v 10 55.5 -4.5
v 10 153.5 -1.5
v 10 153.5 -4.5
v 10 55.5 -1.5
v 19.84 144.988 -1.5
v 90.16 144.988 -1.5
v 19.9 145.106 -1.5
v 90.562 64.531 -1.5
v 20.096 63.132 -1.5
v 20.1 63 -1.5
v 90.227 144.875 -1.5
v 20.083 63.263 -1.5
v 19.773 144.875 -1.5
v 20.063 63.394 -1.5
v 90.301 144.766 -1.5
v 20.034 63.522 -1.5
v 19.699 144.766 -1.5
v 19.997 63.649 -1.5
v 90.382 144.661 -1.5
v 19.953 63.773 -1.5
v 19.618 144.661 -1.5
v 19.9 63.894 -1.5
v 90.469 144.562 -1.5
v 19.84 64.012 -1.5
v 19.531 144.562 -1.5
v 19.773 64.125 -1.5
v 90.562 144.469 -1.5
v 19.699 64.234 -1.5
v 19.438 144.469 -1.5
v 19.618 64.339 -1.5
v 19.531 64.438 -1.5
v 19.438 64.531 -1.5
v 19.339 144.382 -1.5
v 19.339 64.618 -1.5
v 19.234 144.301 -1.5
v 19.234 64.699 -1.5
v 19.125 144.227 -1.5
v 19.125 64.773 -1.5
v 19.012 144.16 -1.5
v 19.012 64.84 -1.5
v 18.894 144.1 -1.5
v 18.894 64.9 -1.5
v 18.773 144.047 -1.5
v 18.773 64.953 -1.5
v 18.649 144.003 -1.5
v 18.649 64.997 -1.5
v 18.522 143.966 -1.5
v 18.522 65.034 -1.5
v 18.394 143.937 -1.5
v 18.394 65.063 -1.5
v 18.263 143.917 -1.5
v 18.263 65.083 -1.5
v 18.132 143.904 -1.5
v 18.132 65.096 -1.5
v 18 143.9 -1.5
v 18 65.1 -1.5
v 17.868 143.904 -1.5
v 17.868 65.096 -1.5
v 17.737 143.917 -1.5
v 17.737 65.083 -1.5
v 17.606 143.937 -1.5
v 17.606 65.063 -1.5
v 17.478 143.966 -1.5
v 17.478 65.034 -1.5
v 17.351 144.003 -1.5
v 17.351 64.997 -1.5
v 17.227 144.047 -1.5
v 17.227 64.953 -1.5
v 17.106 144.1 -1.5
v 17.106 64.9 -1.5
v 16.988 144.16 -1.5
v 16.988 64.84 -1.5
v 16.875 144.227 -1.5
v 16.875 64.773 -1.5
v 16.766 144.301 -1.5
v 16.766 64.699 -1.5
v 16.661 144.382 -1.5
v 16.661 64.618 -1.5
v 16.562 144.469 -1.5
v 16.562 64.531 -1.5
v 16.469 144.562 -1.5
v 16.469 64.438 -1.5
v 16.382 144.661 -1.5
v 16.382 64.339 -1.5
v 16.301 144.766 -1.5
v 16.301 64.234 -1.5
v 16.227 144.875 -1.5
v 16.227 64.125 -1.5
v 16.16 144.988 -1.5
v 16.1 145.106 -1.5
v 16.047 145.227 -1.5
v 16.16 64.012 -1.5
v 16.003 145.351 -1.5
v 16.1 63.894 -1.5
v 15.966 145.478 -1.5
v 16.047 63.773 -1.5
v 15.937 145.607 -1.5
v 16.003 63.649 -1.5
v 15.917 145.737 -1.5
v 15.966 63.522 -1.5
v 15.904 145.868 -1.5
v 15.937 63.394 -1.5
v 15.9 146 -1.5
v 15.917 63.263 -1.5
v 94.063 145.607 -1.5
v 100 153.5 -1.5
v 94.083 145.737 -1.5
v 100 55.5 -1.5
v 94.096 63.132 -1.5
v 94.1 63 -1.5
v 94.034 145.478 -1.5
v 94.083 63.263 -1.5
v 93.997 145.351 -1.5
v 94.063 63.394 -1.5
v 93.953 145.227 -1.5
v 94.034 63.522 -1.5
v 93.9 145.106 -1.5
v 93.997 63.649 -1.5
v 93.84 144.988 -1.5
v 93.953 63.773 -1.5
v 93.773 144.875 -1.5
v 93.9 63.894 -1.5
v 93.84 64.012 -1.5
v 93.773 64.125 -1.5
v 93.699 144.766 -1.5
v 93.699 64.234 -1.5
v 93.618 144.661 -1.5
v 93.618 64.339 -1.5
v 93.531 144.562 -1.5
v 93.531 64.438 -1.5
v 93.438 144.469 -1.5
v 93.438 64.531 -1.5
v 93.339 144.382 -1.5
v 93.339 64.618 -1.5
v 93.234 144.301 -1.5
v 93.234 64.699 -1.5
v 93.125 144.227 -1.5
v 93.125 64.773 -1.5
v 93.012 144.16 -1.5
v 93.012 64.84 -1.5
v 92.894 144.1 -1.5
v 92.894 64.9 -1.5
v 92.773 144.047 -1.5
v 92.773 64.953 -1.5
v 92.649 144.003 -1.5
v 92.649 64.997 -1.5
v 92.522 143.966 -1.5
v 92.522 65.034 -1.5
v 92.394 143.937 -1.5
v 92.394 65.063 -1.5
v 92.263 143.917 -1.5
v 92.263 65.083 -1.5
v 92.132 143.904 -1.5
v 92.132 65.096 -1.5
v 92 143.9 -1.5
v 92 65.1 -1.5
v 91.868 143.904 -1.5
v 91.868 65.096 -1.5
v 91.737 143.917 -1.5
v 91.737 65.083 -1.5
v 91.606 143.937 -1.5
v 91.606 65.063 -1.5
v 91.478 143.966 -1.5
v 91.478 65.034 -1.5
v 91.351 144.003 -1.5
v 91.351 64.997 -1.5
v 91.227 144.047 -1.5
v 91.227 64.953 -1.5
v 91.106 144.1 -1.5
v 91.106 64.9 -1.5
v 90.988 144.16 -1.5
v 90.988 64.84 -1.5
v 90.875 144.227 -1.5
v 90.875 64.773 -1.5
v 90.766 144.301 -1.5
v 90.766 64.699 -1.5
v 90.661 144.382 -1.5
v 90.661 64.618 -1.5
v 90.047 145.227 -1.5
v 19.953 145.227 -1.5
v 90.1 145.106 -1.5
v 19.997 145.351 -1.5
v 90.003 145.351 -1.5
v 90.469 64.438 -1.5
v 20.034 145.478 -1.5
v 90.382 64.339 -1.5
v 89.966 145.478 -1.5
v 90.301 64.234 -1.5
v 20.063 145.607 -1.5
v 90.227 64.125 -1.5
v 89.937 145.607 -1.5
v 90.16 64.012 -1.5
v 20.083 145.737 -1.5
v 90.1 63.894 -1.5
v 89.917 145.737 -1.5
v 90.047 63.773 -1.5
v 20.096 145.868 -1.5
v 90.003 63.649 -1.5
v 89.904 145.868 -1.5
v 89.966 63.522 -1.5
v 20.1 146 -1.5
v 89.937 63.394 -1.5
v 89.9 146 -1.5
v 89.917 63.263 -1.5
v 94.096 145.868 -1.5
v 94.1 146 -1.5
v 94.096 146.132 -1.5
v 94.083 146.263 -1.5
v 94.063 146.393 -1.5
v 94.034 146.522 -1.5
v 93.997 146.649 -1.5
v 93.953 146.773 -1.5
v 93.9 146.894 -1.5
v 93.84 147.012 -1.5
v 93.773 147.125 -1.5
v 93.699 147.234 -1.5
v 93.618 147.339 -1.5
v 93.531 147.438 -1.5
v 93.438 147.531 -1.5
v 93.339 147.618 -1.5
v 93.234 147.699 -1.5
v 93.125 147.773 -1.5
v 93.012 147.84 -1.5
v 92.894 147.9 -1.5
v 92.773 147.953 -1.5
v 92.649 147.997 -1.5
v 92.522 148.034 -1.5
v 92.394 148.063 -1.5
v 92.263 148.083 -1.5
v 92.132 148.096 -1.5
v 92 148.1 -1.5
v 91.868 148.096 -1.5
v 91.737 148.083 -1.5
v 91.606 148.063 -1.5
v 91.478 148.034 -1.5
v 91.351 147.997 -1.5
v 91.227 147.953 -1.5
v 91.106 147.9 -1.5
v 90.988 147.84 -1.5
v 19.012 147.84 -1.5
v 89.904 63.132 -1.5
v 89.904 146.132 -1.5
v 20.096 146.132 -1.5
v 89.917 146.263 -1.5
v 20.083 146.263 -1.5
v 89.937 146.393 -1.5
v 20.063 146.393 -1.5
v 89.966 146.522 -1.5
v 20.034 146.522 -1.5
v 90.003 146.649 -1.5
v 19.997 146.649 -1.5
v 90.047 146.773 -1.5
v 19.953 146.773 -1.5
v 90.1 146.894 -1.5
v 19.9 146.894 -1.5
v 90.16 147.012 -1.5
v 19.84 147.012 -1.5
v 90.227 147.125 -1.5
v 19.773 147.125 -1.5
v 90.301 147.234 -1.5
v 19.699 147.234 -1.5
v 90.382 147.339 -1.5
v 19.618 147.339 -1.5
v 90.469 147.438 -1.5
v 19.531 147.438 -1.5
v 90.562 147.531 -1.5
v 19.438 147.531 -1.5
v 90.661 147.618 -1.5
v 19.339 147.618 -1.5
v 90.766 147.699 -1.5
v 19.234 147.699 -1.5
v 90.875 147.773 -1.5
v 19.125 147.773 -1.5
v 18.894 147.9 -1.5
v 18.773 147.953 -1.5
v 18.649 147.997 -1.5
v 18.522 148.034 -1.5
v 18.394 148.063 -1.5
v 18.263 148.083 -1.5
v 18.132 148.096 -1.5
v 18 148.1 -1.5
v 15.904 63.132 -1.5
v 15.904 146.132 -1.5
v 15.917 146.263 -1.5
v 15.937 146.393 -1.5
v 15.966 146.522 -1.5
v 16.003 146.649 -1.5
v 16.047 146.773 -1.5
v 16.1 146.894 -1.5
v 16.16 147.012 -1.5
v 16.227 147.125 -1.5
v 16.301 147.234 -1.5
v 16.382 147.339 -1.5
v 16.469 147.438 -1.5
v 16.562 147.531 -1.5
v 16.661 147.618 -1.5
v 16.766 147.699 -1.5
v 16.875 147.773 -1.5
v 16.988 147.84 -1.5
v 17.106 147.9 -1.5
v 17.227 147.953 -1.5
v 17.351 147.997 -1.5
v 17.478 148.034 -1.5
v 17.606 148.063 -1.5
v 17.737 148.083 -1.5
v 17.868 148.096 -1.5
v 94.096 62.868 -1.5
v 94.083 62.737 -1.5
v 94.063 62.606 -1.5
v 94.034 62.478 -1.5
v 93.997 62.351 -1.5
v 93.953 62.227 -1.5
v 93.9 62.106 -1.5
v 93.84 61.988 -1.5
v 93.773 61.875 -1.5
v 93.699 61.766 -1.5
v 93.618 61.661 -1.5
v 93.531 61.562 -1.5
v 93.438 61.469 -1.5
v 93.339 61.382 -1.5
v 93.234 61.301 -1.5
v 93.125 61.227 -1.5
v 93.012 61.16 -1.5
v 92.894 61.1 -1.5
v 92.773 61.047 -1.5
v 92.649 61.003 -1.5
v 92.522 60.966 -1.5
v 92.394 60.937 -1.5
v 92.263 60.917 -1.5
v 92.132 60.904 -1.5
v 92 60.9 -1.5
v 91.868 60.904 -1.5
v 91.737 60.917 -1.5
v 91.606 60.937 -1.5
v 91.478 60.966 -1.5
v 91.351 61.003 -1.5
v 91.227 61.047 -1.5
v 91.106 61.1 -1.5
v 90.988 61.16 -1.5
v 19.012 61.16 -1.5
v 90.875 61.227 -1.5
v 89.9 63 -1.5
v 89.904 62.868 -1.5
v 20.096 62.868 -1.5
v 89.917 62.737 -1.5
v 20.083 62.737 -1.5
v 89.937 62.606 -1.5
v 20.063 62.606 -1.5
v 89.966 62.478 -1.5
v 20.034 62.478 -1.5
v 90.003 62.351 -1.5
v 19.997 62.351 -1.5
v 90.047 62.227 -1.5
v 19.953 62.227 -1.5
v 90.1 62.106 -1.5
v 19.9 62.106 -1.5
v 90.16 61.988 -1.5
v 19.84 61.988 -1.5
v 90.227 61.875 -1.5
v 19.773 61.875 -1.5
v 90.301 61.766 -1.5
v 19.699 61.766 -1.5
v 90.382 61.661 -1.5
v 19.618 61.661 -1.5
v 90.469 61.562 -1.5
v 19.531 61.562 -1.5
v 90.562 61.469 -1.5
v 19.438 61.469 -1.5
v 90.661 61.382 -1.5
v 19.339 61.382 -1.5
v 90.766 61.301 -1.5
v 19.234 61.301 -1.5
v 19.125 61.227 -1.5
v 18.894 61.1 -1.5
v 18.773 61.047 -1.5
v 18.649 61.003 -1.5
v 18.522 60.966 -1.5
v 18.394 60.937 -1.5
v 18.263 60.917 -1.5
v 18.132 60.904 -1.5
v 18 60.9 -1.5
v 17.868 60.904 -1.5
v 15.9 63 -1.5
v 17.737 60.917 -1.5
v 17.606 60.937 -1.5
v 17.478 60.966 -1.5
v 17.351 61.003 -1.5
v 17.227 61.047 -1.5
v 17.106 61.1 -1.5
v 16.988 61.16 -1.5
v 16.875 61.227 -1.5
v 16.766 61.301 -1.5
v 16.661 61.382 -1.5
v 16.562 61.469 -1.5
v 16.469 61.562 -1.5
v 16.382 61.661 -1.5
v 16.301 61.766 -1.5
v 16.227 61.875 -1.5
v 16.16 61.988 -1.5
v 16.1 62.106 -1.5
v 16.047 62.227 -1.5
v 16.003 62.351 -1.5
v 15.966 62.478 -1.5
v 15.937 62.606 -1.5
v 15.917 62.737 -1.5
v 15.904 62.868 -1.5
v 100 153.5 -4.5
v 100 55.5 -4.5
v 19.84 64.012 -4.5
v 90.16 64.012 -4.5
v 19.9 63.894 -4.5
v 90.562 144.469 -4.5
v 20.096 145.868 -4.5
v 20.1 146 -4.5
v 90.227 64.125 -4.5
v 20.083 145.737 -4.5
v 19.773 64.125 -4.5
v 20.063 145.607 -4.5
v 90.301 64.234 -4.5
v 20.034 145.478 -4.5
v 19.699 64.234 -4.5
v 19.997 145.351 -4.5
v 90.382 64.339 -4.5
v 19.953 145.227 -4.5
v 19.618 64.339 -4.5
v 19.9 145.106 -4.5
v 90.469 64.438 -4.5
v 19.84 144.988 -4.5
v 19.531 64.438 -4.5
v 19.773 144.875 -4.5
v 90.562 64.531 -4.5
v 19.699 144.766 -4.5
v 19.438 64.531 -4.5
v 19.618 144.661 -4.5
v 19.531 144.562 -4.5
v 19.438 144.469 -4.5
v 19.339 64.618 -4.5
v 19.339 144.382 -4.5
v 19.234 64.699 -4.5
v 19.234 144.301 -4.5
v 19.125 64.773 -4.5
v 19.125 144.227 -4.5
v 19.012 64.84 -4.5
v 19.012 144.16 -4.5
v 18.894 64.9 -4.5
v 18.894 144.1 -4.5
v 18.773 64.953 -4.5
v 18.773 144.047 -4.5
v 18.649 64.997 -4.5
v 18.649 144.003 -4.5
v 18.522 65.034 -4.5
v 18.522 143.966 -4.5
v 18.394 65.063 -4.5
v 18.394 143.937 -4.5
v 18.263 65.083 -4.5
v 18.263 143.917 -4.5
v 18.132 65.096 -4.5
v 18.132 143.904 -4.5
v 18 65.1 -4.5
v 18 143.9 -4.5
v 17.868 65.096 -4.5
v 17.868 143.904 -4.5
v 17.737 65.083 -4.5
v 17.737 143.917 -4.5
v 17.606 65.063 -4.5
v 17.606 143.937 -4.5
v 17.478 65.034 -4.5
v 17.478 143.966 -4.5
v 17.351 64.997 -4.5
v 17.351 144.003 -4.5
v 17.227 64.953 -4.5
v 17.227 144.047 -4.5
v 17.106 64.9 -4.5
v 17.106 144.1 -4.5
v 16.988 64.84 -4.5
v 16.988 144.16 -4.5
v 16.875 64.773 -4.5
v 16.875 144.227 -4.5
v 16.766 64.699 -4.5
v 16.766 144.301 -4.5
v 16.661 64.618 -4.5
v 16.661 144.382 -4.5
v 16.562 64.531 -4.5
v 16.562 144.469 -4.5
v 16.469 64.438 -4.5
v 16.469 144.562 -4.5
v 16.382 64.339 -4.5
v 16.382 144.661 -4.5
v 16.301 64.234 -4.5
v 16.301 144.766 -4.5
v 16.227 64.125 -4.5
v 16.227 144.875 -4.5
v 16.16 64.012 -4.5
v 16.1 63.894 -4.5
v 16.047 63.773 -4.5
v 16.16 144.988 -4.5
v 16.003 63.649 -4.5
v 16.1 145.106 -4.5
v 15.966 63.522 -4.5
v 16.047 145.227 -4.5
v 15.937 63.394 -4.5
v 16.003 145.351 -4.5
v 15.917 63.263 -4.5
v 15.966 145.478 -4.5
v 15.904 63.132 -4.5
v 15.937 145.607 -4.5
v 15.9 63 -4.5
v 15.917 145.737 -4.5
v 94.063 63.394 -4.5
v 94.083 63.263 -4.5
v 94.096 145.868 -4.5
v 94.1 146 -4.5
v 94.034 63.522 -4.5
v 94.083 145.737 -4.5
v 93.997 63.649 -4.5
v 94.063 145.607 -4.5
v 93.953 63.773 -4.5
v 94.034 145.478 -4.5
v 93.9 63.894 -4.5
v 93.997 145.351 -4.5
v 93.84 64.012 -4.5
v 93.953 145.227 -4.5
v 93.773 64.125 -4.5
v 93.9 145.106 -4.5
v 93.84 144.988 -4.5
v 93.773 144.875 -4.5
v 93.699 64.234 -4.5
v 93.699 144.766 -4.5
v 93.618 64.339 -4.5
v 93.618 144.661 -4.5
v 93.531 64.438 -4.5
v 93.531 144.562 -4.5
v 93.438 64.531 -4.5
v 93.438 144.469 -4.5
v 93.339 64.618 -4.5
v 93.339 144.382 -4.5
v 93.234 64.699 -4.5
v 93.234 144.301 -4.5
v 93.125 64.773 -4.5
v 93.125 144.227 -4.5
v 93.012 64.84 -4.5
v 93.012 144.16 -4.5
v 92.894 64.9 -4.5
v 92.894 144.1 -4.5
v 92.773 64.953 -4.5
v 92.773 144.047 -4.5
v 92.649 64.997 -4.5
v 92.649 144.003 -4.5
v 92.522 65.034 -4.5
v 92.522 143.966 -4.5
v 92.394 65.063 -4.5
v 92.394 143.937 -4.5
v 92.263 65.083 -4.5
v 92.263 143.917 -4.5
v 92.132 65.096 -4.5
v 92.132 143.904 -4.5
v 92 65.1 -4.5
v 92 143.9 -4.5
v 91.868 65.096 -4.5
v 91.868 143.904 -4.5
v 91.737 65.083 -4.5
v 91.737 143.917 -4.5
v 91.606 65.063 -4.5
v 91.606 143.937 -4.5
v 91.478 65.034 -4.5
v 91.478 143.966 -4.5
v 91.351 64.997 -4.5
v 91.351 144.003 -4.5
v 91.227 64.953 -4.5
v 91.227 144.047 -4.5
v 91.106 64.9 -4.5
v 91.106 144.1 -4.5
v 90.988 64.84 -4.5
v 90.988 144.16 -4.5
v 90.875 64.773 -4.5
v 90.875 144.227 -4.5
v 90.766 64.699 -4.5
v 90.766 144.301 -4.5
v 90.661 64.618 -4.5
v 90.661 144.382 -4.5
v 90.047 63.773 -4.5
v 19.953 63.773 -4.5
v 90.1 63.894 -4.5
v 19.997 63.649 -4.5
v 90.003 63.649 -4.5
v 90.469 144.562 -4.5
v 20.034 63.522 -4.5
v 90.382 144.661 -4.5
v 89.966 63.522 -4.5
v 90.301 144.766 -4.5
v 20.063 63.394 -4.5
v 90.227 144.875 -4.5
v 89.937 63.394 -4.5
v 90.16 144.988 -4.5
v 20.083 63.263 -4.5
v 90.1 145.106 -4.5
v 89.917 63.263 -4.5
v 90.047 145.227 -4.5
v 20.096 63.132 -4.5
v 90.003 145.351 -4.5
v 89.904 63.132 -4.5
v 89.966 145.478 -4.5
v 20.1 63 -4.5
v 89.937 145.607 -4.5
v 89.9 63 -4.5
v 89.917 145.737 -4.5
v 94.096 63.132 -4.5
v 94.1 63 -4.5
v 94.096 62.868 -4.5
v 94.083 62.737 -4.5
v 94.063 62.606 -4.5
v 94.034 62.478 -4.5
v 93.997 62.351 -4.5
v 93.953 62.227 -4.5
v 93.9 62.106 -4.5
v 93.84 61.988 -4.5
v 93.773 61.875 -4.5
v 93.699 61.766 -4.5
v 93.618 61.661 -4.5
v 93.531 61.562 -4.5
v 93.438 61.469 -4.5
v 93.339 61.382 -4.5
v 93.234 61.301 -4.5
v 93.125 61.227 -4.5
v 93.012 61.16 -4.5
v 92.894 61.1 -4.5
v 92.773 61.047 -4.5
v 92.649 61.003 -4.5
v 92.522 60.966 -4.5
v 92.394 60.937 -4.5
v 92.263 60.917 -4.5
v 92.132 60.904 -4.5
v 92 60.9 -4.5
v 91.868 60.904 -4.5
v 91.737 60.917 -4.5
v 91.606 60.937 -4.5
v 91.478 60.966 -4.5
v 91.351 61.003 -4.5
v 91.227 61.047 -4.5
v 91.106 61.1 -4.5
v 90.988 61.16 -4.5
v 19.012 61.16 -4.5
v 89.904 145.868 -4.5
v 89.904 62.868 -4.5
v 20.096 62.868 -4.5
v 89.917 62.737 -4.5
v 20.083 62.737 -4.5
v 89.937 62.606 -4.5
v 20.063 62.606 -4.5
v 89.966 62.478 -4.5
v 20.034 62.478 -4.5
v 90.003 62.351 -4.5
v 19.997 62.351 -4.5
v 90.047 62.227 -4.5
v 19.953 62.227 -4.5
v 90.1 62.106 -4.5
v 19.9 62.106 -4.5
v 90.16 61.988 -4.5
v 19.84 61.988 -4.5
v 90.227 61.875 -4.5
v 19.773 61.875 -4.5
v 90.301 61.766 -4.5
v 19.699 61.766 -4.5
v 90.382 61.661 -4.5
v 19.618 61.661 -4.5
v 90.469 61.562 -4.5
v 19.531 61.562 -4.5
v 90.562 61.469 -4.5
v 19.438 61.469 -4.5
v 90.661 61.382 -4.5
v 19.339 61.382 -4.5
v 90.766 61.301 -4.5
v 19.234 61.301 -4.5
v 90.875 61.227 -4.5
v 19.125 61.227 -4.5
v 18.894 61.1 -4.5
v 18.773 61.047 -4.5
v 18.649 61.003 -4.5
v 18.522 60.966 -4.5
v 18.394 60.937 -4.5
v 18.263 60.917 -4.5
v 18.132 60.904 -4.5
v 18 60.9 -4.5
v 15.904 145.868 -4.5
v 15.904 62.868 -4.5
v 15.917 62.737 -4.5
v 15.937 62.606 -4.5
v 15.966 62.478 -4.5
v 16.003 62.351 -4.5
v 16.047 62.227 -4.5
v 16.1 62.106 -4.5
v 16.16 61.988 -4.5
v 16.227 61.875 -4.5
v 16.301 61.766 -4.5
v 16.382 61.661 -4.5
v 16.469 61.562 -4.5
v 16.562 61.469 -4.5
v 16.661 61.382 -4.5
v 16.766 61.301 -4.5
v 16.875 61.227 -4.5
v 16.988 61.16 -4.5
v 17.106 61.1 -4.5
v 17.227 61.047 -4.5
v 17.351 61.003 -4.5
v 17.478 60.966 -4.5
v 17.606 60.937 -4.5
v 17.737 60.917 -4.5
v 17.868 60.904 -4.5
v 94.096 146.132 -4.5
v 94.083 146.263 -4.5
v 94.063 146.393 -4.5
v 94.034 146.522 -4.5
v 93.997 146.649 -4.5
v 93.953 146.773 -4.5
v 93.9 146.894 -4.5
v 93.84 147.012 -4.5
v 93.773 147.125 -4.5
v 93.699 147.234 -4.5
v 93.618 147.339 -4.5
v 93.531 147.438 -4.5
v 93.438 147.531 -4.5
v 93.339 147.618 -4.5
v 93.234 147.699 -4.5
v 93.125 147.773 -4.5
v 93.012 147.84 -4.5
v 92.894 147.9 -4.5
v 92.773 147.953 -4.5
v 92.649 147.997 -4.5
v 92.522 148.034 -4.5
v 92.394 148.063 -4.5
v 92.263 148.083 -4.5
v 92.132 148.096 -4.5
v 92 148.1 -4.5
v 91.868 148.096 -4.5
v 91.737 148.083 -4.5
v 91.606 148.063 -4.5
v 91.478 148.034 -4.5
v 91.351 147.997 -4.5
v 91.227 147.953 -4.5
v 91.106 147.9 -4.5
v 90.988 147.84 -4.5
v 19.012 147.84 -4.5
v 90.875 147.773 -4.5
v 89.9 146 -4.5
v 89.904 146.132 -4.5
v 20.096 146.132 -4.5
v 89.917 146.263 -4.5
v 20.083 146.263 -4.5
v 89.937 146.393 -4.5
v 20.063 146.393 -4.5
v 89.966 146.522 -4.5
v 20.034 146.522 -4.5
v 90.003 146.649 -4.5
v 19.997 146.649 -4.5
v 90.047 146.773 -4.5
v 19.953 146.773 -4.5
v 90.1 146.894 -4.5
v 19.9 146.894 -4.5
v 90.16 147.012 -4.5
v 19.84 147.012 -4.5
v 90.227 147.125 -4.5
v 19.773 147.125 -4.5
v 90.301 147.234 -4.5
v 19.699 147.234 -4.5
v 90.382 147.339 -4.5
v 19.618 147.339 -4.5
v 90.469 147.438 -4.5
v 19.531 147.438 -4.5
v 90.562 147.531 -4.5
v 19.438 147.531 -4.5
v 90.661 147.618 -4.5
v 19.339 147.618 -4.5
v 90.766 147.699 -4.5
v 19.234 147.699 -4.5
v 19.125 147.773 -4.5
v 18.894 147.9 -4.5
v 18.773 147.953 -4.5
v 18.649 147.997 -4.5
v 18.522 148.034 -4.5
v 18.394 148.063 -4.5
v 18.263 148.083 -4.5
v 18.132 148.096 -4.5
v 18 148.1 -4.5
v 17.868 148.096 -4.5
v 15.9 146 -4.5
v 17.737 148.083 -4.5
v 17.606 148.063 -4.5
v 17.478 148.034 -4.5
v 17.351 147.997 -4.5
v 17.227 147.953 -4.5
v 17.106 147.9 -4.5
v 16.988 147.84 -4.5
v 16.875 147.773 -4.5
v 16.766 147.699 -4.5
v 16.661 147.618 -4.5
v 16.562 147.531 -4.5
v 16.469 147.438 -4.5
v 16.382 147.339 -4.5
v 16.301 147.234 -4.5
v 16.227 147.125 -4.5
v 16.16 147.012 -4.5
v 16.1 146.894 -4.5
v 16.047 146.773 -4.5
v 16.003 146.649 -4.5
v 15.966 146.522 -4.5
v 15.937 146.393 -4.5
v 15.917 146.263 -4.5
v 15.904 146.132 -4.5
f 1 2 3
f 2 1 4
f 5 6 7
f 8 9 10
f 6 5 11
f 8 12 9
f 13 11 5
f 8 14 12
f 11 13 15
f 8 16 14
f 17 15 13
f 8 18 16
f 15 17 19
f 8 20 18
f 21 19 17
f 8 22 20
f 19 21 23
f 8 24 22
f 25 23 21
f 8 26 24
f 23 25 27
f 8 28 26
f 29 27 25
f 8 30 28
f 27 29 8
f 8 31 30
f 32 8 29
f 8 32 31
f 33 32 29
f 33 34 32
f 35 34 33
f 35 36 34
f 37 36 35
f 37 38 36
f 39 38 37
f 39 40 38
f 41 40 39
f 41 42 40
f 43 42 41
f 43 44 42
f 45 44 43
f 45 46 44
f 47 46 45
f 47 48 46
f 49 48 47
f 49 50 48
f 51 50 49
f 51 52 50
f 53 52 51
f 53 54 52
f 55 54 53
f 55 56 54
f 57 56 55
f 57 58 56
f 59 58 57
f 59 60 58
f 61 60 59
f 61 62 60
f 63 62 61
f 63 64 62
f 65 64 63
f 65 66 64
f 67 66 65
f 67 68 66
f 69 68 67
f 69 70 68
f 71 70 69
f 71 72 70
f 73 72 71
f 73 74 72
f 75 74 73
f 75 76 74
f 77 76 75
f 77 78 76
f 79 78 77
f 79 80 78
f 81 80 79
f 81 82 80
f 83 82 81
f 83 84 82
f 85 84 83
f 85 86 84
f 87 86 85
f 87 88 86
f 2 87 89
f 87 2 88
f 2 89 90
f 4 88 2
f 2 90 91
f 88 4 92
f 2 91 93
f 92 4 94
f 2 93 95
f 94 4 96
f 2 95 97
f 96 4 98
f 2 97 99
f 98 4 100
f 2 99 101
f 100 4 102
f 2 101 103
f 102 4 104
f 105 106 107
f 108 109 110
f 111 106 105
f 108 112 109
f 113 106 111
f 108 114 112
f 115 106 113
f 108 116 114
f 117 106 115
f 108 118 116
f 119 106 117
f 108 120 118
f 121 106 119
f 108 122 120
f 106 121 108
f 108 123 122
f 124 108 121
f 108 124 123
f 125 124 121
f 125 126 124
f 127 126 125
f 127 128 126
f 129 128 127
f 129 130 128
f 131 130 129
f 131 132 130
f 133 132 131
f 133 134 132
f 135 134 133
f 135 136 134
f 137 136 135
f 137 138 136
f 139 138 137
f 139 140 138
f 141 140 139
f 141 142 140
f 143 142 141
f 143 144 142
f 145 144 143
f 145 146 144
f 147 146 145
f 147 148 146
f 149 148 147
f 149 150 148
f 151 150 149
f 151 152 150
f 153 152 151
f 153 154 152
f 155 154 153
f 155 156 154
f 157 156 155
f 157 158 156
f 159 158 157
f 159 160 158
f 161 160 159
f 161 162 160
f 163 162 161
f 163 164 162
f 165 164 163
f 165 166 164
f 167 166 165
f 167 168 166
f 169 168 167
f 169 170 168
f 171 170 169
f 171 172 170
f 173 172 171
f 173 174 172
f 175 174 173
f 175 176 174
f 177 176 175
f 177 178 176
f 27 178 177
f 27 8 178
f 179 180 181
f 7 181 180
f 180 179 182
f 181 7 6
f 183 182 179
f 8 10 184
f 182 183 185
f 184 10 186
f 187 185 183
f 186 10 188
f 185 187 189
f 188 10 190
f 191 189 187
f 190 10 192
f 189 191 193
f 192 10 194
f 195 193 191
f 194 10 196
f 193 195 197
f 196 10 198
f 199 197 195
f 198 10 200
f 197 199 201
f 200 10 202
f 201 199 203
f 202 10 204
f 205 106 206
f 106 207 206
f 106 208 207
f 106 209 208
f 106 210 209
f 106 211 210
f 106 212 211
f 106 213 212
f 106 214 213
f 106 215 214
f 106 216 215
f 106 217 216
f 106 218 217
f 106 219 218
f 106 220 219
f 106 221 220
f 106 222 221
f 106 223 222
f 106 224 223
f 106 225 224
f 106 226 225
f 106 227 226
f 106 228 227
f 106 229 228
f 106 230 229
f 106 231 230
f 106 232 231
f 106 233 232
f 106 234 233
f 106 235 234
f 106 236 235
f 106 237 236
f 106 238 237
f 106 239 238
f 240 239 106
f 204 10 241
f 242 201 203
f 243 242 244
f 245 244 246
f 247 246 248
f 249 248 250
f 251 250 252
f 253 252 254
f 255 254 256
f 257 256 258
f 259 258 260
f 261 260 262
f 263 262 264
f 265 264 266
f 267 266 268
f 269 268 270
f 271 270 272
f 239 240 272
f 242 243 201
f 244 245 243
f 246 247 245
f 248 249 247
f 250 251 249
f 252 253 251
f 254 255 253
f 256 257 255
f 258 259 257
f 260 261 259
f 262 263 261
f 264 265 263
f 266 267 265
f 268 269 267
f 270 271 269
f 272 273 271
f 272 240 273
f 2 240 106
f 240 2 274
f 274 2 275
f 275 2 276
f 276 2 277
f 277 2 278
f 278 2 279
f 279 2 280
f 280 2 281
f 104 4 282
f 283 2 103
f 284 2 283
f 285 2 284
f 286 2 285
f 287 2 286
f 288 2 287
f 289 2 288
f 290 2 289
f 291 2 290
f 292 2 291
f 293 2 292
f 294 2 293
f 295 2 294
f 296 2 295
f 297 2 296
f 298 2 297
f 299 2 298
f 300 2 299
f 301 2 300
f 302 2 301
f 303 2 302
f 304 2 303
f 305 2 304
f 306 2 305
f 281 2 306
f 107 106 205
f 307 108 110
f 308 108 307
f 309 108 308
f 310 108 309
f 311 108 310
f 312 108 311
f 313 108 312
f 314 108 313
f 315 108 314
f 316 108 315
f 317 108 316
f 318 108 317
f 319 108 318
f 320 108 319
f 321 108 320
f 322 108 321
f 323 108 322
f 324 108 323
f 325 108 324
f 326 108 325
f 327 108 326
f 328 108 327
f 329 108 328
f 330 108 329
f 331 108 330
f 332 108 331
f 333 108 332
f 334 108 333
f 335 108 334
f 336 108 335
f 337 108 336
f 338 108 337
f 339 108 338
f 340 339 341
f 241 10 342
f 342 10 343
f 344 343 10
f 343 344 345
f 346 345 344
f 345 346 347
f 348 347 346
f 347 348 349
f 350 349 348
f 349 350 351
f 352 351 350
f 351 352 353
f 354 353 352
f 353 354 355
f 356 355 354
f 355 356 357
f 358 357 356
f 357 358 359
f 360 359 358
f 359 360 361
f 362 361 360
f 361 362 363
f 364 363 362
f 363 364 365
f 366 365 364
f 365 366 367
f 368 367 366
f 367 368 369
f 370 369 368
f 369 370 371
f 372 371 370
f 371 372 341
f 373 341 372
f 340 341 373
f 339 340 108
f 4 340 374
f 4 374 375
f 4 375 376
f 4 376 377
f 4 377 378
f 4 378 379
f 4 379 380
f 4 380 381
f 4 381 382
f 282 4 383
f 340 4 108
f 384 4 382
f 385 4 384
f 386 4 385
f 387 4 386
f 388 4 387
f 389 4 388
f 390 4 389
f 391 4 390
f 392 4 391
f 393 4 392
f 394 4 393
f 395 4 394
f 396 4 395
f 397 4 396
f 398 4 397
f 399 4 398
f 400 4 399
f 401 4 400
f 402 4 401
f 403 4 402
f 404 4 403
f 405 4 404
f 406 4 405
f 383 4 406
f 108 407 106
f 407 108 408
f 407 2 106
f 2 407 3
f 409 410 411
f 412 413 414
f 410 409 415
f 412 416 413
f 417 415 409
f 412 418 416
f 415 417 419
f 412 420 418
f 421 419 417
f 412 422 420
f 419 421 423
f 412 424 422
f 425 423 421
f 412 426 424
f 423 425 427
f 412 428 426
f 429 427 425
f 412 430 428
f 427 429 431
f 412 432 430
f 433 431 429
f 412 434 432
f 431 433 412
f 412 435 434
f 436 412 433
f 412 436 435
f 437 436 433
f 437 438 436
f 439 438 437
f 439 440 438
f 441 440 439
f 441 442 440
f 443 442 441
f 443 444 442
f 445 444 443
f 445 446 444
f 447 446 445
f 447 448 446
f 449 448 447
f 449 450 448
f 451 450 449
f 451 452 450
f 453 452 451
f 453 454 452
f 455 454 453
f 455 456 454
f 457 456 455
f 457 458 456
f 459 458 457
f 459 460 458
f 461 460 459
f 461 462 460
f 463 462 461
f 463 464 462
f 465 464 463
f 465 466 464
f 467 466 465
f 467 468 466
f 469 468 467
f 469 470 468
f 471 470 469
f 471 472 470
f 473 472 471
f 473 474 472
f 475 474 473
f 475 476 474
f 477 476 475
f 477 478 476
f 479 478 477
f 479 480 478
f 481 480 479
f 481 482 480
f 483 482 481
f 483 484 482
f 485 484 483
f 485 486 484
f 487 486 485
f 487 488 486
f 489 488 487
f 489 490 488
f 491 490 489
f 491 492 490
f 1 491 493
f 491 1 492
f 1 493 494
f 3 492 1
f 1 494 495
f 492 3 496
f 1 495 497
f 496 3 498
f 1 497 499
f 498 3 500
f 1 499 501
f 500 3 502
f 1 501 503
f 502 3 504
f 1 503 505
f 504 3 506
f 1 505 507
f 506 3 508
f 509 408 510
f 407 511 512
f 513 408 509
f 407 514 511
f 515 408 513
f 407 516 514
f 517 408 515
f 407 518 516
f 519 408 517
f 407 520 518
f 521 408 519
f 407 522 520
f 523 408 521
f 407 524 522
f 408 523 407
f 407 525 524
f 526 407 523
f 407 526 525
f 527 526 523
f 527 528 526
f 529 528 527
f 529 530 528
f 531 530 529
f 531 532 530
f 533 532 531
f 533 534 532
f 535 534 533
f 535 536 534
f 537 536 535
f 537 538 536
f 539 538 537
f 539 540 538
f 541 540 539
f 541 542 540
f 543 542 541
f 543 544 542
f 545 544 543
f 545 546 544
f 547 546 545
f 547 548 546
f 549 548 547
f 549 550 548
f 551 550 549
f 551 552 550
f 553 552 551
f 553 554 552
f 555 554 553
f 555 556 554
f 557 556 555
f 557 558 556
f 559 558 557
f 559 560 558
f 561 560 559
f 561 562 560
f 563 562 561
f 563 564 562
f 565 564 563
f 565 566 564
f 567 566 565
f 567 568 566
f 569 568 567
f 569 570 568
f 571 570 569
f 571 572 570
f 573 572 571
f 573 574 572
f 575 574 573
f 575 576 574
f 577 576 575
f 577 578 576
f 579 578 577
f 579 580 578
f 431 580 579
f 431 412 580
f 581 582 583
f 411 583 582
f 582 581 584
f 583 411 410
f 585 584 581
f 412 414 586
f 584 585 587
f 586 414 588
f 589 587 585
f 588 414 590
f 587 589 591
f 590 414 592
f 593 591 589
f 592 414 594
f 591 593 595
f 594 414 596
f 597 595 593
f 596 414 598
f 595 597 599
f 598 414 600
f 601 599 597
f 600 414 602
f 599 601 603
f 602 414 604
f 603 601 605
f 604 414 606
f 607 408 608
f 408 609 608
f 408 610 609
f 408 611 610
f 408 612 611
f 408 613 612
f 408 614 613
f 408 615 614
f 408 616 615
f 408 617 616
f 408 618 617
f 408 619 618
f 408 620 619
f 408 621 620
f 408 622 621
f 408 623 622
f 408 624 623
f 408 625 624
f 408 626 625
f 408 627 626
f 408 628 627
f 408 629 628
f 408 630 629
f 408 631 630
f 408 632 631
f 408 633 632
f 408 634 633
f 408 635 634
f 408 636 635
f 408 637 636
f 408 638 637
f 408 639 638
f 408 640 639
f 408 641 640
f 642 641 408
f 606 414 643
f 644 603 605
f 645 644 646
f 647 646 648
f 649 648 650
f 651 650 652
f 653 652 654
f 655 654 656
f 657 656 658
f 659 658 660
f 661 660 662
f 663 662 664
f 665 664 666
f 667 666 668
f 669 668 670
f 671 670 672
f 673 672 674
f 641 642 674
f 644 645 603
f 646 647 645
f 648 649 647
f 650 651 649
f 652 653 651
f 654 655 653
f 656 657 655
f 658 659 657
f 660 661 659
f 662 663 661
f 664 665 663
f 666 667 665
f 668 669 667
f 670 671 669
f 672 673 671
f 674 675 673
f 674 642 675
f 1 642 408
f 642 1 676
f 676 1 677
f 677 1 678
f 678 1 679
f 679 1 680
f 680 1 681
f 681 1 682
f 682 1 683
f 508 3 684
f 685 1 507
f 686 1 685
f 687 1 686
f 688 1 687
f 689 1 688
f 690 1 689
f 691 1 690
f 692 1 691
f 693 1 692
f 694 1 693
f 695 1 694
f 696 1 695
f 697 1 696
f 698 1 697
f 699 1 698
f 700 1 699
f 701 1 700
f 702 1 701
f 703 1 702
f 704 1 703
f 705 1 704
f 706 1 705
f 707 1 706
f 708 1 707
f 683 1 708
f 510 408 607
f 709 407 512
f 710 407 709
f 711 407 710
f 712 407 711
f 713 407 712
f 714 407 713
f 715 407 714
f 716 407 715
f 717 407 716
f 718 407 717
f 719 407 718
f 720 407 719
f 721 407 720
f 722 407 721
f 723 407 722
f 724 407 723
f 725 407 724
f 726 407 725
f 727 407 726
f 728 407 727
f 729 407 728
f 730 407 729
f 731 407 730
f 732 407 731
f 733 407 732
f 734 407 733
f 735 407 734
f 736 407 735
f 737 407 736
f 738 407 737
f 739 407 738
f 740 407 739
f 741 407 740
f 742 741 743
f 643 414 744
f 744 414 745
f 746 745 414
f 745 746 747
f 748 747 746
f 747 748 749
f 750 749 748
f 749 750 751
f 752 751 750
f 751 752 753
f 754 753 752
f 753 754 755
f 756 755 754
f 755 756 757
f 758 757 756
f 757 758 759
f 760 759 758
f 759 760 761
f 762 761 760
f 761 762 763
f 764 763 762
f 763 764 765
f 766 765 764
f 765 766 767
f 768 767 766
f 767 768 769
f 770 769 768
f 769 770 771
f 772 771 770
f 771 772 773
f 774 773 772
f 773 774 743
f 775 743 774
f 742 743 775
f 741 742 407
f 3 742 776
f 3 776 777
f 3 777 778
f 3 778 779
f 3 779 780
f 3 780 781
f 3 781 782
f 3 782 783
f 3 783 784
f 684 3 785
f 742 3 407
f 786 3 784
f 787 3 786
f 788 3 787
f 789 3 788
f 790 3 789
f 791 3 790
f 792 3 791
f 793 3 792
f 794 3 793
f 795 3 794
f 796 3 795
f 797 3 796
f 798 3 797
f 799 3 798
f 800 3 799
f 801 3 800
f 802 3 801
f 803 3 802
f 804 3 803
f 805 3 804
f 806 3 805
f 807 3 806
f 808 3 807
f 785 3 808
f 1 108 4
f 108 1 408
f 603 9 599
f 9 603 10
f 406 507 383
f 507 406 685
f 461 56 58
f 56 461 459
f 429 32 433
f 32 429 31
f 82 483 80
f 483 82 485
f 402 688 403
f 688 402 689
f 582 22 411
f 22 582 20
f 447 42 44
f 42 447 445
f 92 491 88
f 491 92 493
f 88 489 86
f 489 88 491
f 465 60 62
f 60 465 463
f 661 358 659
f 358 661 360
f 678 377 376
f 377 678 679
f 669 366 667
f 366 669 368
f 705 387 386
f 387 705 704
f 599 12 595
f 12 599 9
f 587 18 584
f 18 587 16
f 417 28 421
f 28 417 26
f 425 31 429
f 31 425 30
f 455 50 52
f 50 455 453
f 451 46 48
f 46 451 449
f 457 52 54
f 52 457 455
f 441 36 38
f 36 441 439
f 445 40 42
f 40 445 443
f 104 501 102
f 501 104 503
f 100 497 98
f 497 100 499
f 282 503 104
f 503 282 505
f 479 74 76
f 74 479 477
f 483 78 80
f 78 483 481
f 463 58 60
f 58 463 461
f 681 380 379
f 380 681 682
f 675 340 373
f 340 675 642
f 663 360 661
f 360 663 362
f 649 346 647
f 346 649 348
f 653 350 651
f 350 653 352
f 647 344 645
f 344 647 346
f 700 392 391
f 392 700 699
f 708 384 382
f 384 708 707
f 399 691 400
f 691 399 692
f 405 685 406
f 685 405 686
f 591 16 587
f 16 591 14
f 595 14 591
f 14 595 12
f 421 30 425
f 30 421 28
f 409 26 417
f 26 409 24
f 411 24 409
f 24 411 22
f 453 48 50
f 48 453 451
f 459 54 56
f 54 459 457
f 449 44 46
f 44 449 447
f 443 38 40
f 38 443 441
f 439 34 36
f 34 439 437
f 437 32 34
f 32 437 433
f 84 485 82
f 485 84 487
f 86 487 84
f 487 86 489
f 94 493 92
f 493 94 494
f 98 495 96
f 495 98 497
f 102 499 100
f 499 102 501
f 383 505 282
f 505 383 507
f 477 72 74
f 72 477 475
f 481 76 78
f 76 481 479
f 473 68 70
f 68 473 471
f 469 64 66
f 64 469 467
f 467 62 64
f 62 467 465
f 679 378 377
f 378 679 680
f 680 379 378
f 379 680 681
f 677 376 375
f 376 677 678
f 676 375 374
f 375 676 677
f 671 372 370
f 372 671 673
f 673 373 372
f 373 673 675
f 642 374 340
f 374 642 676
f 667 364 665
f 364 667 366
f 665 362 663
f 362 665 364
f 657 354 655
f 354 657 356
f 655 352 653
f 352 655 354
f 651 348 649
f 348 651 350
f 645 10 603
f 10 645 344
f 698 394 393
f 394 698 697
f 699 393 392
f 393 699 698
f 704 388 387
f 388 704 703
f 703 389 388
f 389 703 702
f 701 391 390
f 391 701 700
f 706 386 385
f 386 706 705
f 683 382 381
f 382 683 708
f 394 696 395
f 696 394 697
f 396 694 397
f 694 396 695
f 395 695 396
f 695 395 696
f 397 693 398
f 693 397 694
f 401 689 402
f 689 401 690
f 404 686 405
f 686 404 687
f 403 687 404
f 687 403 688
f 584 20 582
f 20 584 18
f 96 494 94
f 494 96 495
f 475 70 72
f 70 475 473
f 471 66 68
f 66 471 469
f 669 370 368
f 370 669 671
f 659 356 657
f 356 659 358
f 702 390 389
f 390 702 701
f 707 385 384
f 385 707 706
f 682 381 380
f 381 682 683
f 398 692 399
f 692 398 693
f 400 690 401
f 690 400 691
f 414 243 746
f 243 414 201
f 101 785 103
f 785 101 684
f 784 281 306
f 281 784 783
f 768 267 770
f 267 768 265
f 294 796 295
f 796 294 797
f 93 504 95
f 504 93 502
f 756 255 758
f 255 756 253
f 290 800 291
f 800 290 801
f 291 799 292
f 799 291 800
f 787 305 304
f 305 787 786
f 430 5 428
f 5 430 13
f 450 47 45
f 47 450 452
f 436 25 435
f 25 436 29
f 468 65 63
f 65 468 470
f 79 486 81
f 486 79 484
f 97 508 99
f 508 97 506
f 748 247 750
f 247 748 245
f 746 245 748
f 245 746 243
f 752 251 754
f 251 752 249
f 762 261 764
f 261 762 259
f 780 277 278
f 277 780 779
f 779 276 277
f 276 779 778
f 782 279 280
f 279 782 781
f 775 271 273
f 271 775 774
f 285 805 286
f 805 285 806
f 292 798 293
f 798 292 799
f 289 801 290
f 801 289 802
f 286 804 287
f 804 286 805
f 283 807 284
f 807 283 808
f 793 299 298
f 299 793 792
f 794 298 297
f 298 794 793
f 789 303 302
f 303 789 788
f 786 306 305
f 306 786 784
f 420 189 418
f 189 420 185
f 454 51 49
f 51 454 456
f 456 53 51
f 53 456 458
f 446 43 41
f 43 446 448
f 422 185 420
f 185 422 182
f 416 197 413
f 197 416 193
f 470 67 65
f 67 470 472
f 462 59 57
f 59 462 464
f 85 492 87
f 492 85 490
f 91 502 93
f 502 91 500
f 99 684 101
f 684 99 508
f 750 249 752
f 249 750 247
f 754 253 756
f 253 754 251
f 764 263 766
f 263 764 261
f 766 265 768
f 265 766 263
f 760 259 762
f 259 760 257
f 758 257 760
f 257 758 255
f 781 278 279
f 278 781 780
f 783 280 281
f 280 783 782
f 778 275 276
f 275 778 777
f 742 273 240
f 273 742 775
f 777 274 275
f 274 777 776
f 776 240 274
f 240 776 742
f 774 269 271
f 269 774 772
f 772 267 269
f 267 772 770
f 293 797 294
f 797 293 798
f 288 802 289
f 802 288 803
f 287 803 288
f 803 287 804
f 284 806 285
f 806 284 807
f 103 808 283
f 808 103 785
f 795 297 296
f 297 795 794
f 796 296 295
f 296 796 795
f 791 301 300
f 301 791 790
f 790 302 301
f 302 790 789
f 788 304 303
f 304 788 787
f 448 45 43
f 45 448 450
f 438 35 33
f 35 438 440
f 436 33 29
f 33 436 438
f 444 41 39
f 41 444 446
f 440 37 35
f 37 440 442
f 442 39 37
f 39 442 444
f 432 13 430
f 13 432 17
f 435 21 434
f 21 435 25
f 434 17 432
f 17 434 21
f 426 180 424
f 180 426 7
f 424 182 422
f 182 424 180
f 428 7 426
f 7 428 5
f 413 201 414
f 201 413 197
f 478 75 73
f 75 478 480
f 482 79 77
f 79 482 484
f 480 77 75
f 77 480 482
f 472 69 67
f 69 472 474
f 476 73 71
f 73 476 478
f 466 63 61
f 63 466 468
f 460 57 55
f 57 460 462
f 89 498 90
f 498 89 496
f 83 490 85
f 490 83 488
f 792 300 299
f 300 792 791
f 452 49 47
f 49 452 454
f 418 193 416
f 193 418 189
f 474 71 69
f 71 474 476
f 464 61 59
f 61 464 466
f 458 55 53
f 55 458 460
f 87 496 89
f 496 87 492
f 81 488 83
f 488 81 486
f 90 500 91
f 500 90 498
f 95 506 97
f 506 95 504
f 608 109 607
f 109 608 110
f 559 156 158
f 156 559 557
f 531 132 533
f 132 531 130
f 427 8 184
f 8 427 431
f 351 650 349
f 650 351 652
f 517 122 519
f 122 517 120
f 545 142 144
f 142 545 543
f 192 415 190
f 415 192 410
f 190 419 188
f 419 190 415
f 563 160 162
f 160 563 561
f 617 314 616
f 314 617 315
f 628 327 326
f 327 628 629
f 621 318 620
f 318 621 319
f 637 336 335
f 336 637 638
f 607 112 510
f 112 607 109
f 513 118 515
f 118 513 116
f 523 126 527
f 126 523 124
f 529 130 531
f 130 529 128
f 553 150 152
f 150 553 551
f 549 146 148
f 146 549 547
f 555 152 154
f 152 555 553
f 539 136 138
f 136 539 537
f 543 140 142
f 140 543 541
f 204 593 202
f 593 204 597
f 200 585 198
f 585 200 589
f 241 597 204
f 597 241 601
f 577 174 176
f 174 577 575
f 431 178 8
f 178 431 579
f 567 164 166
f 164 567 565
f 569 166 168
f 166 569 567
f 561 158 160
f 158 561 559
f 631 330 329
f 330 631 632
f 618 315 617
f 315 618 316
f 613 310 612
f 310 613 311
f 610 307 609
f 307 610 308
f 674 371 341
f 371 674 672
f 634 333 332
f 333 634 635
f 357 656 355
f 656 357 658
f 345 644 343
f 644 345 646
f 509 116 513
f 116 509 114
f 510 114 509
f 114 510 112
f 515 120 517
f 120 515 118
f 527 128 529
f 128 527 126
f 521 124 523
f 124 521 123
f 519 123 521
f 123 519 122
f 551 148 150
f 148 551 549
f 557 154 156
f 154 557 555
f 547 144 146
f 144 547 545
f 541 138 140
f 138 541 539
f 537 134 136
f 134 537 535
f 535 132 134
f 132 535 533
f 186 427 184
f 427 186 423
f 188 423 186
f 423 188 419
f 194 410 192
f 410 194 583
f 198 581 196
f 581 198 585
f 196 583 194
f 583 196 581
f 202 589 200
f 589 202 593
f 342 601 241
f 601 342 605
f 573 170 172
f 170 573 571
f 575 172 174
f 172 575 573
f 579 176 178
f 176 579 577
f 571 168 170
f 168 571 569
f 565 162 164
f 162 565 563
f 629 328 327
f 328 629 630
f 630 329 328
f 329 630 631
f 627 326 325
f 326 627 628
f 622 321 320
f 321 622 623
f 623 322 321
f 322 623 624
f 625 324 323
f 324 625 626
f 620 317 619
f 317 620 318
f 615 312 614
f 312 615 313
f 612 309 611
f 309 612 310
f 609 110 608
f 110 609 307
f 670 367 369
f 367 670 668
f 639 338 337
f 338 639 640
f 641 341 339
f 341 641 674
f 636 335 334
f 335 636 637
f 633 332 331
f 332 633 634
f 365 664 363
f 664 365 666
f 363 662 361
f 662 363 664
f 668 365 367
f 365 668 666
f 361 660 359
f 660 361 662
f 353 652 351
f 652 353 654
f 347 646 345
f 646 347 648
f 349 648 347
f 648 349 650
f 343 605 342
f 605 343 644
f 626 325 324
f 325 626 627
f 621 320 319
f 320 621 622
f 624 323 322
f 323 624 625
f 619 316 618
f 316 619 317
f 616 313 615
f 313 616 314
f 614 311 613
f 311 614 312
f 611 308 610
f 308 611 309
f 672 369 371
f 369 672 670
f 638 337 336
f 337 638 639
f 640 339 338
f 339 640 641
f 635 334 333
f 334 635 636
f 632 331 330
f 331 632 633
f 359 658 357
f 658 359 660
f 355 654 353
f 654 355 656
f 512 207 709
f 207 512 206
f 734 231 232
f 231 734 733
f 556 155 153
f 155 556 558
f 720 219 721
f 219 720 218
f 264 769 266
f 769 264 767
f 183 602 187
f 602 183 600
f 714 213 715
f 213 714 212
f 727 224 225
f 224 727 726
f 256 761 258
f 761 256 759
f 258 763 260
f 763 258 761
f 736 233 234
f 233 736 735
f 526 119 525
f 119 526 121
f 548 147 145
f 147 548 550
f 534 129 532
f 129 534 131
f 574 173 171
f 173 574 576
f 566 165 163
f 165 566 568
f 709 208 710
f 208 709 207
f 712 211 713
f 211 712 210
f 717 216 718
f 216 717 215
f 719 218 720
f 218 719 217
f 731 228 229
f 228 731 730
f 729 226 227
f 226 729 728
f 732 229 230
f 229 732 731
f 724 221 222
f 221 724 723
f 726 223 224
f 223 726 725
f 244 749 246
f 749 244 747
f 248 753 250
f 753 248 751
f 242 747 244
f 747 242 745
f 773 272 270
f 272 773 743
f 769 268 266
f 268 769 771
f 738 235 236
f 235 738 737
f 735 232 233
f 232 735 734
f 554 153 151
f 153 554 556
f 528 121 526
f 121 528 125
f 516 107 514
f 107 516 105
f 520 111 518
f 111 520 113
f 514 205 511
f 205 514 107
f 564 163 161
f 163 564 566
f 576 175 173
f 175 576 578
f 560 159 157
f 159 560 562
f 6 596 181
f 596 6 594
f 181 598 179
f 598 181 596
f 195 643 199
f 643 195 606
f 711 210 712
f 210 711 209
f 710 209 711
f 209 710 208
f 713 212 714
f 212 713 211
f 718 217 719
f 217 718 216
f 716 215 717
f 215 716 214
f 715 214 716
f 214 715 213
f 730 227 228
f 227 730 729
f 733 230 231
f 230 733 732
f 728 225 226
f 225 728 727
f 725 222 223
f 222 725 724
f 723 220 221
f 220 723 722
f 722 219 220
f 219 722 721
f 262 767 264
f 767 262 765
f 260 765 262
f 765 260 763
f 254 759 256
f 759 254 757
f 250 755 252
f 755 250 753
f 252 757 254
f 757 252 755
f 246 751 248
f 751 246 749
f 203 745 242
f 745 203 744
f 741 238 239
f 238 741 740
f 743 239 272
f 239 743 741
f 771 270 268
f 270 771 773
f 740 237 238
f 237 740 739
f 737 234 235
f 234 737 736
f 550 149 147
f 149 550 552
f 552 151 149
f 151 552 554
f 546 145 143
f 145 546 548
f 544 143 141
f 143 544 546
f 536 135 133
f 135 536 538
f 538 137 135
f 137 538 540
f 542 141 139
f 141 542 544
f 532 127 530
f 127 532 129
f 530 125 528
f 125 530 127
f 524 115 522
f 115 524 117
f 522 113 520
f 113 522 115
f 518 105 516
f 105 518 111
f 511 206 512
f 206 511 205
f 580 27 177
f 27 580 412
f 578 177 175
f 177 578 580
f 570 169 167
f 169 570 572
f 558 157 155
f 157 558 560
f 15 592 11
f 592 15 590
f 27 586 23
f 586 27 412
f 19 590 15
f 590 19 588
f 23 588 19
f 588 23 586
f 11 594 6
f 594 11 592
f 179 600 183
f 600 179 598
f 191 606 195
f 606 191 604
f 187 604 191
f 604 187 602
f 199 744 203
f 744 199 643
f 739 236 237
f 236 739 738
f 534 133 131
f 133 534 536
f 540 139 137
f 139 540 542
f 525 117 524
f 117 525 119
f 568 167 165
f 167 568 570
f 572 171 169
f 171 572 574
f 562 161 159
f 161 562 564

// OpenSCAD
difference(){
    // plate
    translate ([55,104.5,-3]) cube([90,98,3],true);
    translate ([18,63,-25]) cylinder(50,d=4.2,true,$fn=100);
    translate ([18,146,-25]) cylinder(50,d=4.2,true,$fn=100);
    translate ([92,63,-25]) cylinder(50,d=4.2,true,$fn=100);
    translate ([92,146,-25]) cylinder(50,d=4.2,true,$fn=100);
}
